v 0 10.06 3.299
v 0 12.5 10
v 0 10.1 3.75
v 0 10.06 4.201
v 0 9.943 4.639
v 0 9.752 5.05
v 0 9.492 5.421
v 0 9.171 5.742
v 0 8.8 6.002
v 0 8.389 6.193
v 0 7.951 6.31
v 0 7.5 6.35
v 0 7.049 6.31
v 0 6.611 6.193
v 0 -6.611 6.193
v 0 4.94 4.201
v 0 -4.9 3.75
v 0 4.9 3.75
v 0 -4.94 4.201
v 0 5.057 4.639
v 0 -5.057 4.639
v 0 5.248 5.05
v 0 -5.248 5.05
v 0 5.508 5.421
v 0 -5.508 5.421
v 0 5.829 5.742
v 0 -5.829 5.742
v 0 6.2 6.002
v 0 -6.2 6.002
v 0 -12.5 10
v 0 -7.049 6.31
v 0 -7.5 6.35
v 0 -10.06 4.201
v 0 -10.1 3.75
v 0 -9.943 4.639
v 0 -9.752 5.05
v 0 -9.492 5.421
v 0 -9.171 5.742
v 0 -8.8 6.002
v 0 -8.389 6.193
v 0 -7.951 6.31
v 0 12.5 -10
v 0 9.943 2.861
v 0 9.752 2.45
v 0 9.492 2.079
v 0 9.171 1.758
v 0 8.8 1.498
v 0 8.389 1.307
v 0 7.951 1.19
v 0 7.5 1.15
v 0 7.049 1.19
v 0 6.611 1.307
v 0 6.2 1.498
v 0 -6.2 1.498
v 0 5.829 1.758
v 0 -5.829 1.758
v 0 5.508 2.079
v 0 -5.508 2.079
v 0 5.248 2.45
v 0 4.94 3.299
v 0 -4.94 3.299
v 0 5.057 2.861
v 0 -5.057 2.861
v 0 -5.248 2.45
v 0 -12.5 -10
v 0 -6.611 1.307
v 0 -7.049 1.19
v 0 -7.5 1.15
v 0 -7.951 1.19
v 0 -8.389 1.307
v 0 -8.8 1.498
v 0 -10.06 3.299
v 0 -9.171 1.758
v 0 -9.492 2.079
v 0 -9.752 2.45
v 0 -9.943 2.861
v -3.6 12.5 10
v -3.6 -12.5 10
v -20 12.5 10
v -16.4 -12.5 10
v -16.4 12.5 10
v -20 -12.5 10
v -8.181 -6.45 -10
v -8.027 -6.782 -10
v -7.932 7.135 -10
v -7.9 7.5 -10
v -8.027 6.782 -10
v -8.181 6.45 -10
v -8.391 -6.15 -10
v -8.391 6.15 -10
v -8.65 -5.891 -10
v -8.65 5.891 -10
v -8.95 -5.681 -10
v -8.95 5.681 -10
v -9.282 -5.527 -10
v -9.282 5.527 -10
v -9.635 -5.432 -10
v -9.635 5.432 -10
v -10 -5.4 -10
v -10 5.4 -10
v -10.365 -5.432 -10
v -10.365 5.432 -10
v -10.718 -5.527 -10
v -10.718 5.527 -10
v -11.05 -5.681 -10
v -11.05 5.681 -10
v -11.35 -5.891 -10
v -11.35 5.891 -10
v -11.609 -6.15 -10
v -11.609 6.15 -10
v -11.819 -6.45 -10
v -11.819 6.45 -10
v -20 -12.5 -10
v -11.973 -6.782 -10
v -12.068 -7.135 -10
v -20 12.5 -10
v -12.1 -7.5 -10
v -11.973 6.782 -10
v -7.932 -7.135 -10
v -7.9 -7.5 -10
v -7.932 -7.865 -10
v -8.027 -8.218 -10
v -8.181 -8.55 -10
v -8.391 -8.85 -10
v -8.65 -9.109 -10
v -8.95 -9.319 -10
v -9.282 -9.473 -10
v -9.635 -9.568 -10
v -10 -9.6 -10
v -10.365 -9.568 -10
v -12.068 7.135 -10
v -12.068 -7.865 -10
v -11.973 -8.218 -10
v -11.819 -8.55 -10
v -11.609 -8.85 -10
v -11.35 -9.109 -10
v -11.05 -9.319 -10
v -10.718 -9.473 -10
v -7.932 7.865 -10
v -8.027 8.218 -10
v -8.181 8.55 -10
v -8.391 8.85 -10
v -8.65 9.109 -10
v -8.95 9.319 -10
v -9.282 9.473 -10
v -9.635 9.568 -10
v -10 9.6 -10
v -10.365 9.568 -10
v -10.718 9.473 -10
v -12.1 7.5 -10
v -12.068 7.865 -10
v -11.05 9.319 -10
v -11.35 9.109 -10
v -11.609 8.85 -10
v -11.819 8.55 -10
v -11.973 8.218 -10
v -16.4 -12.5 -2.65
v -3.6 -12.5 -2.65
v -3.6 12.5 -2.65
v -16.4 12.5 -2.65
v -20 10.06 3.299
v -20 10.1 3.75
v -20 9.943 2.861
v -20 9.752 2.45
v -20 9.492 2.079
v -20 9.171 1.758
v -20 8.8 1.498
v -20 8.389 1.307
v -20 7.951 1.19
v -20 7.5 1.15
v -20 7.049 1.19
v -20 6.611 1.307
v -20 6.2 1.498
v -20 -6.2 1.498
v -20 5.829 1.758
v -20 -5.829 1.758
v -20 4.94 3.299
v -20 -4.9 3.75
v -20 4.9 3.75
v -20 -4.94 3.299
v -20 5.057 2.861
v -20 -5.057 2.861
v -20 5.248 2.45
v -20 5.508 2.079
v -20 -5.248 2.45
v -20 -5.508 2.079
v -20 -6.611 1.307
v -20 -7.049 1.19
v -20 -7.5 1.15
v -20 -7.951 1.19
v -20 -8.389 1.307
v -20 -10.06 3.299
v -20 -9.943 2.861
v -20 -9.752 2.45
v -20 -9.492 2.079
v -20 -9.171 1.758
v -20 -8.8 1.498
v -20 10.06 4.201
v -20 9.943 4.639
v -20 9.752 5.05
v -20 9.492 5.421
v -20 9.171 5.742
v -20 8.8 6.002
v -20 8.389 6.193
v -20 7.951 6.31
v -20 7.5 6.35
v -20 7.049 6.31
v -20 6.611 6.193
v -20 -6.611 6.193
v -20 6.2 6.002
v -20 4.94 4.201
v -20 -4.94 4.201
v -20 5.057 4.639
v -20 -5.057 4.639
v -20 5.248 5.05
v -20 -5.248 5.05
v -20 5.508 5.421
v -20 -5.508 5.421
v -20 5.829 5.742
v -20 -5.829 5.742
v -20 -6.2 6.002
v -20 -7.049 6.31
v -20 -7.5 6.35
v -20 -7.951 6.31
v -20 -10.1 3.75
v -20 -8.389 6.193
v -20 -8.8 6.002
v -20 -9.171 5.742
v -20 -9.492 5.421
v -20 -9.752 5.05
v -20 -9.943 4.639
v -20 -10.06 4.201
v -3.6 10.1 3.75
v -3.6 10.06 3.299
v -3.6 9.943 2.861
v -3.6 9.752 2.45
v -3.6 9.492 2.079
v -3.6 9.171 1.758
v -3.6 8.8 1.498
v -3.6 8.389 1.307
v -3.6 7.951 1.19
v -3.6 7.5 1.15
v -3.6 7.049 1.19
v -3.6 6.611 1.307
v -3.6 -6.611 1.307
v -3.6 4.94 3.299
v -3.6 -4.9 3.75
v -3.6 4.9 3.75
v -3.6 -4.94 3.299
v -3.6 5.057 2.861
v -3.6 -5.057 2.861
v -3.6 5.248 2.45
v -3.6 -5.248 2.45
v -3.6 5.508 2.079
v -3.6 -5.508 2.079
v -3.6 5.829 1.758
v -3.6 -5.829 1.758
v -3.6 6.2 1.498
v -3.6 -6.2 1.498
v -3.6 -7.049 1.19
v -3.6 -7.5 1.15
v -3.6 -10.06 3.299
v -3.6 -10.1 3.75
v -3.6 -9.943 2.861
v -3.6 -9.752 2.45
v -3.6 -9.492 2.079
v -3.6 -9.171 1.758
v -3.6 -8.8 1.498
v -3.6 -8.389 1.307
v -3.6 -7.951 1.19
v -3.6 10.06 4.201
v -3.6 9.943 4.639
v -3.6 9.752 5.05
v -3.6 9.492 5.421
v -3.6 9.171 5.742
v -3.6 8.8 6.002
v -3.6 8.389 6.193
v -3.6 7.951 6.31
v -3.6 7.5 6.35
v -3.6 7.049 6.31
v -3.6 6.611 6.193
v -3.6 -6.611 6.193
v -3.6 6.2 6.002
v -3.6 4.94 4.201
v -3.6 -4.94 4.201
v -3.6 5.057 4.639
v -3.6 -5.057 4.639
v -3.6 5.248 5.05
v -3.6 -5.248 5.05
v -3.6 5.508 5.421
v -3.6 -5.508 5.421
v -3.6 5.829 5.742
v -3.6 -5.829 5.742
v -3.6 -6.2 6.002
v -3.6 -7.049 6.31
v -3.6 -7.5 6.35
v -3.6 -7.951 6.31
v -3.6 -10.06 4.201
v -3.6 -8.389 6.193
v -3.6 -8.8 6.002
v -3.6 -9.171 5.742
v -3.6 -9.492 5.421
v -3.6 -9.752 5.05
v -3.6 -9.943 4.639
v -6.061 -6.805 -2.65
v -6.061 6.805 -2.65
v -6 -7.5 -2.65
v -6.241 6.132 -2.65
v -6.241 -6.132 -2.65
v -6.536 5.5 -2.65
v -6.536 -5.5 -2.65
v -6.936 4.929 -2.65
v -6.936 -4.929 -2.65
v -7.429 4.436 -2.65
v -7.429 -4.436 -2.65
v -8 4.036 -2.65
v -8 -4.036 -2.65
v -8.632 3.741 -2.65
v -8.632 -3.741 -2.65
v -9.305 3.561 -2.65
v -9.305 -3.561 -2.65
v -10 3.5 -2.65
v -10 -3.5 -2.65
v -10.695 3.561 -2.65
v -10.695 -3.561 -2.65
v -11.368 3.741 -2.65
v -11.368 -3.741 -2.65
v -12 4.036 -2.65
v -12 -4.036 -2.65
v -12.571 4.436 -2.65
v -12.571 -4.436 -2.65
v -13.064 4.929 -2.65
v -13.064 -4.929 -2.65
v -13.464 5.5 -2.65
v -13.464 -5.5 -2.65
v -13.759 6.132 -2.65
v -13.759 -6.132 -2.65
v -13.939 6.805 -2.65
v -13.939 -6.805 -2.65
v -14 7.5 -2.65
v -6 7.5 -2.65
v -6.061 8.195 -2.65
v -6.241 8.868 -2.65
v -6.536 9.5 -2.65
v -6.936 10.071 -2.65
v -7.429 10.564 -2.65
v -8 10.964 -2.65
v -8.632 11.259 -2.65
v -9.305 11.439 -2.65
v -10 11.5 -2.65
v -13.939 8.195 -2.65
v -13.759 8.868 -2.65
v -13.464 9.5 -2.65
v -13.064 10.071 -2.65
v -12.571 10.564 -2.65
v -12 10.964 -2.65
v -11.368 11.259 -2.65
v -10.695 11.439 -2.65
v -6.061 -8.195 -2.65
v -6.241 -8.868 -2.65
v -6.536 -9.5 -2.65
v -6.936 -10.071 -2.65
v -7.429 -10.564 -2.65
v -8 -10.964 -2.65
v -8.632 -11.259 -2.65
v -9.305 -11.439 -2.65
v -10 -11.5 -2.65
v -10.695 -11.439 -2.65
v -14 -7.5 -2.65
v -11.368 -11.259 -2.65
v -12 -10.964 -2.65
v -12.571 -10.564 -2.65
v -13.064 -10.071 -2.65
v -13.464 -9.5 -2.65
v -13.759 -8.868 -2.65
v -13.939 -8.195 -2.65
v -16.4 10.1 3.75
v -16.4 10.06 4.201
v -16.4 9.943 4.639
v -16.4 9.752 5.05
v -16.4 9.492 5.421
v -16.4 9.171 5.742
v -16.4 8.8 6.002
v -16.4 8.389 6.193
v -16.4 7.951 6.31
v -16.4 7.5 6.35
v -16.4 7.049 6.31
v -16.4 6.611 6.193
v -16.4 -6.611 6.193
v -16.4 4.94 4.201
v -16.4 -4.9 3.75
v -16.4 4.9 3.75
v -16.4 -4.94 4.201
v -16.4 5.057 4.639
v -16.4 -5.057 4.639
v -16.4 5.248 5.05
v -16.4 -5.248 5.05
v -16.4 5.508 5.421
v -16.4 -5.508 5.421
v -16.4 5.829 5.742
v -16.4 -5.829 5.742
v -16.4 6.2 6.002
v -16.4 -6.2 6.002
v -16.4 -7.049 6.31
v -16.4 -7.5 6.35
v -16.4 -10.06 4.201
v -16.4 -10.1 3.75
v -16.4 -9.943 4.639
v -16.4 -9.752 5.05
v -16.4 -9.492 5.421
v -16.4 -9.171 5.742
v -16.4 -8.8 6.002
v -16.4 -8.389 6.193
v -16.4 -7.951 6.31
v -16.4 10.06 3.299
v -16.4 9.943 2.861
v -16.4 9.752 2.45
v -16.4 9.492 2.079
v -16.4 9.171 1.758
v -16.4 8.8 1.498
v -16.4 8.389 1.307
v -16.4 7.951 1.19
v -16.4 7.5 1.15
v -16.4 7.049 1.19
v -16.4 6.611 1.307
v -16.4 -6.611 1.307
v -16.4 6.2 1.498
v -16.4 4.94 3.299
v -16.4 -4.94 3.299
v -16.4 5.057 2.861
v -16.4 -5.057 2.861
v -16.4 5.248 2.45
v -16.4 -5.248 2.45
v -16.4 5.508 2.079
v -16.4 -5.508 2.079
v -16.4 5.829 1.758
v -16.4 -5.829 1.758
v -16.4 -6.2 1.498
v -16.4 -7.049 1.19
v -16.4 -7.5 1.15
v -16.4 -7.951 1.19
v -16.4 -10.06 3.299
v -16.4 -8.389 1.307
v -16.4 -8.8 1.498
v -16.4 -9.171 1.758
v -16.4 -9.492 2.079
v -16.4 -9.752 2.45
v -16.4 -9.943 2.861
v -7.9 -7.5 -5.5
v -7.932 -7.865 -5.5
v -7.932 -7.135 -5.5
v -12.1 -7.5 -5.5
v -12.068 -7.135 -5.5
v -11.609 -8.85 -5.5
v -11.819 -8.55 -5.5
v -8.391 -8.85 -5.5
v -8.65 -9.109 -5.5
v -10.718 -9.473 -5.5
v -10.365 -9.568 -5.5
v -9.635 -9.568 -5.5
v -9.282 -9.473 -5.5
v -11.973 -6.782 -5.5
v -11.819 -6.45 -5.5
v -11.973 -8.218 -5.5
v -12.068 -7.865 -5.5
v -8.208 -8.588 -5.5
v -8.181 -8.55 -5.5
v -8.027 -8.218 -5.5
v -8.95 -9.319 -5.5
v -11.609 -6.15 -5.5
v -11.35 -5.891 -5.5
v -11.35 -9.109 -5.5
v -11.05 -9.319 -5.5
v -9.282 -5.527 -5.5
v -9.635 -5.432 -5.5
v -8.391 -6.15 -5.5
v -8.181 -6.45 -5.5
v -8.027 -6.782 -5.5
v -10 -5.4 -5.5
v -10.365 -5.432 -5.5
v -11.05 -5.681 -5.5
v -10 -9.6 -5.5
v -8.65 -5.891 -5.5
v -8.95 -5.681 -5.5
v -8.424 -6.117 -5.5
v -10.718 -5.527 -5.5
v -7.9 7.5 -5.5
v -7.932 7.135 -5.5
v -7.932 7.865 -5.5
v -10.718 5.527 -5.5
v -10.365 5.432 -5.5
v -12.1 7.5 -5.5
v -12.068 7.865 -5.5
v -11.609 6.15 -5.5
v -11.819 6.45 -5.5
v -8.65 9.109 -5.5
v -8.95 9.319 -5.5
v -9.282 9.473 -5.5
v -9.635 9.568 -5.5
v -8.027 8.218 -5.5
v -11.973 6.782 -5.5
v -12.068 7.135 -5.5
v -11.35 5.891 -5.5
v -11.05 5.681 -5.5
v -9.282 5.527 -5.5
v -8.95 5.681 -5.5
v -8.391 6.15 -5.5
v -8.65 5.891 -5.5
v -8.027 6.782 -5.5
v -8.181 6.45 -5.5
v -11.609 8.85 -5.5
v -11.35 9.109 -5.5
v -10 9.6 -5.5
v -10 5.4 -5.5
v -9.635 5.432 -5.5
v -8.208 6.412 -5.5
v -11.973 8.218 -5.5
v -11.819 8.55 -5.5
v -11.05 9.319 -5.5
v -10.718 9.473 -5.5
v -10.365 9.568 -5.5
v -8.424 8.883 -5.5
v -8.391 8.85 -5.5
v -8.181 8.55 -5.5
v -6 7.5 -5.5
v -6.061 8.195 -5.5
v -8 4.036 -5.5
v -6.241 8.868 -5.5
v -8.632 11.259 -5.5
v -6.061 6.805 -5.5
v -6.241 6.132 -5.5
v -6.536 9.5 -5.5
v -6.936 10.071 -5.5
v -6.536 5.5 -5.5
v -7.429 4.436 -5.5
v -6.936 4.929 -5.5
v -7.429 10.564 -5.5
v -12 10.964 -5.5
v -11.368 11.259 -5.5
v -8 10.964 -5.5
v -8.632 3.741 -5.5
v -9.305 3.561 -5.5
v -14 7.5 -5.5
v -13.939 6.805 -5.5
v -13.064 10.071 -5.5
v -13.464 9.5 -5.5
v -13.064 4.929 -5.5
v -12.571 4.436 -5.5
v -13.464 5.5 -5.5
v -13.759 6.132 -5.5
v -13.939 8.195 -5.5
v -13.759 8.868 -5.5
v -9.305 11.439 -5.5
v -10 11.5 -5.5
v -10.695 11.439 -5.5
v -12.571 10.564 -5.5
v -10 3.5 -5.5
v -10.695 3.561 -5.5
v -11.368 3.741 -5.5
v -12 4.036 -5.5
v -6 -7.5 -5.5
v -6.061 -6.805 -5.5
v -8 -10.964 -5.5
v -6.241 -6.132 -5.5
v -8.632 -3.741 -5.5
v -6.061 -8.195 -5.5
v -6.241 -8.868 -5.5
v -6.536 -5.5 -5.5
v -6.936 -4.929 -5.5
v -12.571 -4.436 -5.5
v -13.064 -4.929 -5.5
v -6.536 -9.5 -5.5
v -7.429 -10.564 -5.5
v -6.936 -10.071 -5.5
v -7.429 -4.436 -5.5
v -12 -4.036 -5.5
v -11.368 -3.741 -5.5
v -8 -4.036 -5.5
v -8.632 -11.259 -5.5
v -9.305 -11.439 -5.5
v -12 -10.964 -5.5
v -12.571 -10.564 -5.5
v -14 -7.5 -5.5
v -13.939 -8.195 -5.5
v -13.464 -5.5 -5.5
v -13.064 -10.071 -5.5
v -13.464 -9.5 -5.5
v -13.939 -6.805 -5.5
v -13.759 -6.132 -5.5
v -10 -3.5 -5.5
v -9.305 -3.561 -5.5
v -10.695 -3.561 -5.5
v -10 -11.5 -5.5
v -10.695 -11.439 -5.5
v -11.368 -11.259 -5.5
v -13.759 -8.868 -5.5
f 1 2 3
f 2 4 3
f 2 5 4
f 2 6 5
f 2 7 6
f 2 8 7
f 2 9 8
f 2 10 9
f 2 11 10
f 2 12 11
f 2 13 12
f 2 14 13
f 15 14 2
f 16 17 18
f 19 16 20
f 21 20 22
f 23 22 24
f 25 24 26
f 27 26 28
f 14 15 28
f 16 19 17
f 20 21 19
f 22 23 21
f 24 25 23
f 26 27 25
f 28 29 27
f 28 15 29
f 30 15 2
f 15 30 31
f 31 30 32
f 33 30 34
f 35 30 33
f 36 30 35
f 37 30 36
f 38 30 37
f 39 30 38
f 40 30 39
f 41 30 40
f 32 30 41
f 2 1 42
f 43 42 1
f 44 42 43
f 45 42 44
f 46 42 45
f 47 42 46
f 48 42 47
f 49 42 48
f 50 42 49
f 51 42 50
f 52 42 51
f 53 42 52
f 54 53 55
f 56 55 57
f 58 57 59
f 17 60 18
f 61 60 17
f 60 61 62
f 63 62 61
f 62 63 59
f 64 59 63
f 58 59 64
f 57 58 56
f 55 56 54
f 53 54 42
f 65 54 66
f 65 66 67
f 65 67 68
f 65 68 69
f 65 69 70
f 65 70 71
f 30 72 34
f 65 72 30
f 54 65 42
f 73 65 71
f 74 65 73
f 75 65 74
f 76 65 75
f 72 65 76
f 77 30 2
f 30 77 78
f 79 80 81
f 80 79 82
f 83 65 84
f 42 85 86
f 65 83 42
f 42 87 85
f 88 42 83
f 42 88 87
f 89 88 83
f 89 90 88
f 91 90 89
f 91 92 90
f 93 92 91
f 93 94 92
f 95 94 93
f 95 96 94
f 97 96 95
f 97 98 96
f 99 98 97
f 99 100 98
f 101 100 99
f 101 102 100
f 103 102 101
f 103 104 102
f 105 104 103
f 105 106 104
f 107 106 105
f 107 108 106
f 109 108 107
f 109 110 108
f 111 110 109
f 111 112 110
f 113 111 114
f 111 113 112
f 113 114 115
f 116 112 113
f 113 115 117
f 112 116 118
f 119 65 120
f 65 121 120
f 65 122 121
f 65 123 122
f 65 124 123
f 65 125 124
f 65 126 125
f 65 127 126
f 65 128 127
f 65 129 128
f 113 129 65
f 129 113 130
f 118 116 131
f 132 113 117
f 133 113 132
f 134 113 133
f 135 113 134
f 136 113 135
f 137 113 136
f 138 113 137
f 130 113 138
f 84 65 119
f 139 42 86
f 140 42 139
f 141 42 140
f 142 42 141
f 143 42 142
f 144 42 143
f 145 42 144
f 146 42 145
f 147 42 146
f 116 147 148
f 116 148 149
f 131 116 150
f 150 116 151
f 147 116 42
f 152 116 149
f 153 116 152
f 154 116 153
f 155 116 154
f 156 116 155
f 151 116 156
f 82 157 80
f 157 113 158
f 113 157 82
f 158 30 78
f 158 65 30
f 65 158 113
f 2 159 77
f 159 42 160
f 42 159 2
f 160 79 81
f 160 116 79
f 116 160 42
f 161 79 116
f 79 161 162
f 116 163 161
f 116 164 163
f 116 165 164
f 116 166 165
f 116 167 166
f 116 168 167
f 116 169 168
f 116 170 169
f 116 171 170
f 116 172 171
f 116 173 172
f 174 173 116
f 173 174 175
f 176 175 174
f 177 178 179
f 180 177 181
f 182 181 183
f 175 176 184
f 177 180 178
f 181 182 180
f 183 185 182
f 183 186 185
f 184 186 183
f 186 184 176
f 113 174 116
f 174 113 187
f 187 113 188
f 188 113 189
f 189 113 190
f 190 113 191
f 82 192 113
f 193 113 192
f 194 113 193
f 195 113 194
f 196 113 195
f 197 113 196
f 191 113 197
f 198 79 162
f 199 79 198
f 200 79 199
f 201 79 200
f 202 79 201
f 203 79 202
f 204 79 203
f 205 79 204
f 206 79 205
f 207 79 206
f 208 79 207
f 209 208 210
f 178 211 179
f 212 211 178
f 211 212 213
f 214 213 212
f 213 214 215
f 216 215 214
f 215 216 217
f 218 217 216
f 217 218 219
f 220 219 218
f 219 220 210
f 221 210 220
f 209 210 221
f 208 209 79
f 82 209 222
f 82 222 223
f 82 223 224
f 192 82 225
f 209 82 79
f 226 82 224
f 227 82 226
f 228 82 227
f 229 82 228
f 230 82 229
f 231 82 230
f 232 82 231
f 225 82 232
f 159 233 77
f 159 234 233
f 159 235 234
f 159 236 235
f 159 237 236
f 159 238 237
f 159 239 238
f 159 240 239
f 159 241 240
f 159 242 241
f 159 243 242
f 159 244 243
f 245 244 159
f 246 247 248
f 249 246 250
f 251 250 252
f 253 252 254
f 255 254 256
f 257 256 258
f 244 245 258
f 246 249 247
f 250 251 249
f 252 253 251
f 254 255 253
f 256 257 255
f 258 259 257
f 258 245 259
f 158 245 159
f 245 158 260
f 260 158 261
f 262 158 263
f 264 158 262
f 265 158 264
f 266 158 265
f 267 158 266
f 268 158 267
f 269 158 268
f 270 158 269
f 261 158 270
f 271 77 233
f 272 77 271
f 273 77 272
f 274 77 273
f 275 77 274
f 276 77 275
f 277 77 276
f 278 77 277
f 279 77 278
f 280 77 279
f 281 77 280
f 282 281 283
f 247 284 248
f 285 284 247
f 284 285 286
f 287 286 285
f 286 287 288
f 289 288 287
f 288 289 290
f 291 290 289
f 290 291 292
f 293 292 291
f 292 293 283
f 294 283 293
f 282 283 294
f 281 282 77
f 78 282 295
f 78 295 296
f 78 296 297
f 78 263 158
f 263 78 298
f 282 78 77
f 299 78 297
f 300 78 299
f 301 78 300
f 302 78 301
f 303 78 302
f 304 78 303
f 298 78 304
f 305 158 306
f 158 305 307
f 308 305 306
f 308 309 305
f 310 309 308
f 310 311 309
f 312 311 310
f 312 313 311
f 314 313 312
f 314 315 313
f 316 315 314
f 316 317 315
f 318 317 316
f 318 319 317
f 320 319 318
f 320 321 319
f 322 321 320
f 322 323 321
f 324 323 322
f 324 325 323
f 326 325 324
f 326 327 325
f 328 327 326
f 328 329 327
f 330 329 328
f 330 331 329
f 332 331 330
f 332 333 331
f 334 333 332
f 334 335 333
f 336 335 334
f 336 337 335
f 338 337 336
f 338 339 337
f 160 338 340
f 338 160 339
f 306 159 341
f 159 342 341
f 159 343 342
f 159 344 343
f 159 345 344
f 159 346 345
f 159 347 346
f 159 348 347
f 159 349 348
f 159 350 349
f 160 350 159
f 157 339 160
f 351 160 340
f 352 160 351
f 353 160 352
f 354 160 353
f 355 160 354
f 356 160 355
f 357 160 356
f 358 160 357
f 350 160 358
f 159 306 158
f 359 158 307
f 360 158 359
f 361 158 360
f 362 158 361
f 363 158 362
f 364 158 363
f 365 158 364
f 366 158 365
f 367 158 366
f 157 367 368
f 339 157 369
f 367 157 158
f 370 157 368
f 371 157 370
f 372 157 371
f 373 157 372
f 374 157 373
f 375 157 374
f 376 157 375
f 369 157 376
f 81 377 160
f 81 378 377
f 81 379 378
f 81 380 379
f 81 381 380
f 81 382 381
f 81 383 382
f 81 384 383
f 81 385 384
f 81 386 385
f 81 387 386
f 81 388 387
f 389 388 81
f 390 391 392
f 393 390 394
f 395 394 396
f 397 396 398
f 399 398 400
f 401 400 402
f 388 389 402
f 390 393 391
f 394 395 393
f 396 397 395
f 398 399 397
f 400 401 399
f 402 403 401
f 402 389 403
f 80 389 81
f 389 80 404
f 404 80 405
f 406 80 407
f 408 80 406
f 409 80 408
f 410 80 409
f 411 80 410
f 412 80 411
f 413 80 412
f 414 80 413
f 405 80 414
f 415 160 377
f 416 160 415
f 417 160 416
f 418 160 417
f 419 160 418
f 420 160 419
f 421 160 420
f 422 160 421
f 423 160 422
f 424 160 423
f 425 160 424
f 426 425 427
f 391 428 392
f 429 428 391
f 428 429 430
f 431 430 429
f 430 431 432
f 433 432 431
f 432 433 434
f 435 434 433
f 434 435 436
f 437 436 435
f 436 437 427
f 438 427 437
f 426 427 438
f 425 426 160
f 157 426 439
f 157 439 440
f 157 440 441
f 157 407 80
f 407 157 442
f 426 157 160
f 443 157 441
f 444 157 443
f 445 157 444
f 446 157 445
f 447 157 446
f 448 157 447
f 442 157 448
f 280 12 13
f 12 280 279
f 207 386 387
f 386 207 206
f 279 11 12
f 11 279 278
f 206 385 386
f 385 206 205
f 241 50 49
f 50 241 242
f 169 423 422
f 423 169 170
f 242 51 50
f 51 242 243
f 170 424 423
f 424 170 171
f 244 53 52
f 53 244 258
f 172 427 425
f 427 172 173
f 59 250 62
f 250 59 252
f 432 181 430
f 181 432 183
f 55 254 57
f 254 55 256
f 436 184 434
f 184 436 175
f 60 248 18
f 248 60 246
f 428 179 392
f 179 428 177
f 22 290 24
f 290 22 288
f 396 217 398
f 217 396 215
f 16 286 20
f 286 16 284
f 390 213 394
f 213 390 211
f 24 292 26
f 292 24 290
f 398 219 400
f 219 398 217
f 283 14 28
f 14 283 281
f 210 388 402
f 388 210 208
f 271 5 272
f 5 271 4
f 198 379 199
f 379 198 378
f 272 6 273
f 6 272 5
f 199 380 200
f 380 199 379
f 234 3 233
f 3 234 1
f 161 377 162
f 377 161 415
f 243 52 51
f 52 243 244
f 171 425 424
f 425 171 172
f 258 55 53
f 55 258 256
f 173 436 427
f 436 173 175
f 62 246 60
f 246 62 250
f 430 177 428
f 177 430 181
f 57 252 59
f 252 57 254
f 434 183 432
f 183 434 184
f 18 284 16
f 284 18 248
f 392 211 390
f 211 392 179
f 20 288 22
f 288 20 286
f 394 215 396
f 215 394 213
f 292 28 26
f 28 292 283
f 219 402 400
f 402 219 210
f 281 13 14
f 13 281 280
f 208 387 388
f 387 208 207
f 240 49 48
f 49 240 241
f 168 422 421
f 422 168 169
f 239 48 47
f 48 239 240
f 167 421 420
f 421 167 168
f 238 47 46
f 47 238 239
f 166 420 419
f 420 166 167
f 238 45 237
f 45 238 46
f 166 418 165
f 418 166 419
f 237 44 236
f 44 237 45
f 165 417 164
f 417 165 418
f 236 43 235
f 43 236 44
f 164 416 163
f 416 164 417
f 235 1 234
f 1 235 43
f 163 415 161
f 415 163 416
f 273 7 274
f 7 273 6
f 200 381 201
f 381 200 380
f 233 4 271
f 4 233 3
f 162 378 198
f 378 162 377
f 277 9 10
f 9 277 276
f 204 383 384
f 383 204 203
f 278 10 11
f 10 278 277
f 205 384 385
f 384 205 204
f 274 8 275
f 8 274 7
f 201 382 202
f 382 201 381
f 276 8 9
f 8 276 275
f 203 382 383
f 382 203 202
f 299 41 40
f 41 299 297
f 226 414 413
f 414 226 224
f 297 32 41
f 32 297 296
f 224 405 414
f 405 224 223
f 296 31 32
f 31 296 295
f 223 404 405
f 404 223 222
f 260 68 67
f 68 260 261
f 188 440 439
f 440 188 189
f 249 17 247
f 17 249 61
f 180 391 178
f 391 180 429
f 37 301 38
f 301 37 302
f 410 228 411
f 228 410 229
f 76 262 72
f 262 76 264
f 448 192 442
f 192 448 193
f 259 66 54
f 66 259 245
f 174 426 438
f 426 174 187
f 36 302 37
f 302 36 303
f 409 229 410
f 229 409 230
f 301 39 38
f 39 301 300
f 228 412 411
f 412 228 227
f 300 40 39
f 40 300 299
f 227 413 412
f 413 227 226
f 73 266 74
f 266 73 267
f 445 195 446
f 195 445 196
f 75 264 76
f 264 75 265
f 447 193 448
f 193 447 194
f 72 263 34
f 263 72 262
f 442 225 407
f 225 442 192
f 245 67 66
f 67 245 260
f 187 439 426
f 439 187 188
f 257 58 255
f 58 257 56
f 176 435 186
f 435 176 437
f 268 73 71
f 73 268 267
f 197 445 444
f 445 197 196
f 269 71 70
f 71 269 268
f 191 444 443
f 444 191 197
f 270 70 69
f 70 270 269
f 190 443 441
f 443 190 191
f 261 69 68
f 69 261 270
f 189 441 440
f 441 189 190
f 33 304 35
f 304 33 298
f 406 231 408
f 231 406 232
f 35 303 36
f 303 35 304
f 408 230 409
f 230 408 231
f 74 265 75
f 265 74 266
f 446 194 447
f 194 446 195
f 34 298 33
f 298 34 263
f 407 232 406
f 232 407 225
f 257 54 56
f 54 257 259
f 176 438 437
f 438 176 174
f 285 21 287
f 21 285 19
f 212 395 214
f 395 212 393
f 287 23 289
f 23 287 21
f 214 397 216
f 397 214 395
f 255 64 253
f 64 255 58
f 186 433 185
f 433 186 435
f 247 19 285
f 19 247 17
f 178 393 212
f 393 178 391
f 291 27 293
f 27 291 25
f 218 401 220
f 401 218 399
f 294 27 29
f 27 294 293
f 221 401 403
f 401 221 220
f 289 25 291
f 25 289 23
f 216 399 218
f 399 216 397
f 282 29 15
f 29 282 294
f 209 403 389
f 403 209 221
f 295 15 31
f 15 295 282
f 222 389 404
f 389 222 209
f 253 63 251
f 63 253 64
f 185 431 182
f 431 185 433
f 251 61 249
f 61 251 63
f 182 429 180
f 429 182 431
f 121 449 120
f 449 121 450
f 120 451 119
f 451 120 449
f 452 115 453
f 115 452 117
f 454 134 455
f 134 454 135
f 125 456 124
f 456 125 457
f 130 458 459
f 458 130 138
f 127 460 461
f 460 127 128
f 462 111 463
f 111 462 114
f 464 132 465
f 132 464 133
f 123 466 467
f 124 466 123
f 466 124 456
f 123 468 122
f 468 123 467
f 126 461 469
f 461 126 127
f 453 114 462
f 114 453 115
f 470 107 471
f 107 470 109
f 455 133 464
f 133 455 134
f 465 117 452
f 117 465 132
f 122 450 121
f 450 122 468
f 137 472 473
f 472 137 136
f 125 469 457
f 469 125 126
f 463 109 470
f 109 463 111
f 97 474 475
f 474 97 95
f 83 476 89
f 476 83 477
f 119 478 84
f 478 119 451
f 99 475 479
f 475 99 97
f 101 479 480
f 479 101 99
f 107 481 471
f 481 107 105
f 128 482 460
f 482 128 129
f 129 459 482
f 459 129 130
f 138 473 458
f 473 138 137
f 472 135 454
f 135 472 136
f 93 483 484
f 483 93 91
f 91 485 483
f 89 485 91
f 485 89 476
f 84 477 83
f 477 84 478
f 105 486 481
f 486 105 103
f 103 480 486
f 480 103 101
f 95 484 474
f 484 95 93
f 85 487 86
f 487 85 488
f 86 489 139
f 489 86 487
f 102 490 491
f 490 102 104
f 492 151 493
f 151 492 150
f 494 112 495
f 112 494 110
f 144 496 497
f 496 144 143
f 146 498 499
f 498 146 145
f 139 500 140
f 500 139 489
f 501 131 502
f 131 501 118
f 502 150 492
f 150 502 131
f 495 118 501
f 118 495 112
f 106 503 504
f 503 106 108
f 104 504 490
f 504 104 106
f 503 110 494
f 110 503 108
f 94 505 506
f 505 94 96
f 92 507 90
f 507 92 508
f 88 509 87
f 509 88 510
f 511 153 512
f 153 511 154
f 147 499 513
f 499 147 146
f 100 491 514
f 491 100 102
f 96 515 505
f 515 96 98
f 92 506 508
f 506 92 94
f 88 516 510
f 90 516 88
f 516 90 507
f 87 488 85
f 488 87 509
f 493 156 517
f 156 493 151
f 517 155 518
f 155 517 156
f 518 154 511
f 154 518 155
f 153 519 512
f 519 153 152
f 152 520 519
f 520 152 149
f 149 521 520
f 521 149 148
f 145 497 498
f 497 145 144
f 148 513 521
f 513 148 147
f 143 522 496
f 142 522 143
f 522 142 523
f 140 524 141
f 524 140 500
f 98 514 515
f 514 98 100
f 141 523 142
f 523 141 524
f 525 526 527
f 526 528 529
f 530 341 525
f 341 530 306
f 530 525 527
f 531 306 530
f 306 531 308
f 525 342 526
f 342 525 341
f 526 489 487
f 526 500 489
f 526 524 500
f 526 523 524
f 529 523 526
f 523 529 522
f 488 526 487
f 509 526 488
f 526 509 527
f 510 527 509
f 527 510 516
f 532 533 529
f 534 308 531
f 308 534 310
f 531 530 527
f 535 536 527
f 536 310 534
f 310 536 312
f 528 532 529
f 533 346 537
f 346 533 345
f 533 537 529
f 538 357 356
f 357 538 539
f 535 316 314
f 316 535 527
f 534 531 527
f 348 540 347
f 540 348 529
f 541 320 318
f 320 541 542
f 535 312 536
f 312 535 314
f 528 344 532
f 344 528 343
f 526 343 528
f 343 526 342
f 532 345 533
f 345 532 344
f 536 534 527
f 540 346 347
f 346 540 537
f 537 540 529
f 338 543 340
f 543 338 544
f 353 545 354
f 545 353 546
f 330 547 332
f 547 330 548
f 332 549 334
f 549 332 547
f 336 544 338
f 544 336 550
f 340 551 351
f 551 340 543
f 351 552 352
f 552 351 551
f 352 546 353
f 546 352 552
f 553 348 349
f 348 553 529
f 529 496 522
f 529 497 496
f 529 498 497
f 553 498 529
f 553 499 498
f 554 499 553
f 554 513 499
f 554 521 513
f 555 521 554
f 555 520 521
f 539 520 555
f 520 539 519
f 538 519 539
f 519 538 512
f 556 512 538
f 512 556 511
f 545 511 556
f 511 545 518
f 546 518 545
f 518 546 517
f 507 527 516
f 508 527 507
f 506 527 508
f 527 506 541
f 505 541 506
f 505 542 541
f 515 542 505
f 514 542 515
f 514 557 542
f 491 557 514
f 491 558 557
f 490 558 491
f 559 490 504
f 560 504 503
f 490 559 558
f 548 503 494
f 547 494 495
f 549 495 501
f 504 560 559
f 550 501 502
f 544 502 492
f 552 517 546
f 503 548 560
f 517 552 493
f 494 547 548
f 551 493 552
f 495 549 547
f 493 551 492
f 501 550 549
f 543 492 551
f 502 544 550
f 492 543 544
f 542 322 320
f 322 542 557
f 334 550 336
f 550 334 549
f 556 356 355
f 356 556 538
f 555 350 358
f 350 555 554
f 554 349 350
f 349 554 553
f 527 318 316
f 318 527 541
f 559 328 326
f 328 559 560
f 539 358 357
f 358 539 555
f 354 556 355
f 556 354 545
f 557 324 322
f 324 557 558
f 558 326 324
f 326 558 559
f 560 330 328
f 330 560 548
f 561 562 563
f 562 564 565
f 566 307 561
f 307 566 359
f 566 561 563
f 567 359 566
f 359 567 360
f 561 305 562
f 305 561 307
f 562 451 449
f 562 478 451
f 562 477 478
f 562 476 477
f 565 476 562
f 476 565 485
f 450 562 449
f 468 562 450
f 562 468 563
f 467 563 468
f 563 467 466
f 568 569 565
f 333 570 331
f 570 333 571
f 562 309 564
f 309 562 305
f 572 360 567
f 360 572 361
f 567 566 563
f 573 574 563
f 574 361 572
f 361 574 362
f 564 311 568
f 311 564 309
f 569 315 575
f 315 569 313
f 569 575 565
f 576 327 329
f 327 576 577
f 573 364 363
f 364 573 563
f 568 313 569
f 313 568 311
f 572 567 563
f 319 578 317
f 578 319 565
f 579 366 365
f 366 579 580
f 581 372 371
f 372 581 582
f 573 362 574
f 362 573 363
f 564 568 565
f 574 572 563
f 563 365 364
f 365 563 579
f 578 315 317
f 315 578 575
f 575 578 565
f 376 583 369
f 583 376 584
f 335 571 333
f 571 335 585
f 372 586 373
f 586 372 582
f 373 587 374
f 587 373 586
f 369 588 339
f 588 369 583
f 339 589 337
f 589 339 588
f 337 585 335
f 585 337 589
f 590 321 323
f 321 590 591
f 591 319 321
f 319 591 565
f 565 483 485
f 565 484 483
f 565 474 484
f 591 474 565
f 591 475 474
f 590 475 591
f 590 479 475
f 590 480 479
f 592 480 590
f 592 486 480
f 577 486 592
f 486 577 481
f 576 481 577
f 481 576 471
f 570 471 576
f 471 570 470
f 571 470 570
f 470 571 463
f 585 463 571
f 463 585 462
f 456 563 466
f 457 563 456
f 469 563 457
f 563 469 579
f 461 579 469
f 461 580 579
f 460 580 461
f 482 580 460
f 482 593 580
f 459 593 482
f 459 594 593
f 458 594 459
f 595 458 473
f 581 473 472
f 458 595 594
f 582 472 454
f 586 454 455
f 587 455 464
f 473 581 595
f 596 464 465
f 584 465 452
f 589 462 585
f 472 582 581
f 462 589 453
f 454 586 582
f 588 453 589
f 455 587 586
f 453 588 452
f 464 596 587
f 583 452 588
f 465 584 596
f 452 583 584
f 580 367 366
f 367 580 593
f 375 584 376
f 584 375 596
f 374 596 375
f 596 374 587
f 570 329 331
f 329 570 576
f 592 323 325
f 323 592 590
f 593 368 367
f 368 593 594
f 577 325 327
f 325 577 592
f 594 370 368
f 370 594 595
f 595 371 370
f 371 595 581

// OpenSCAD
aluminium_height=20;
loadcell_size=12.5;
mount_depth=20;
mount_long=25;
mount_loc=15/2;
safety=0.3;
screw_head_thick=3;
screw_head_dia=8;

rotate([0,270,0])
difference() {
    linear_extrude(aluminium_height) square([mount_depth,mount_long],true);

    translate([(mount_depth-loadcell_size)/2,0,(aluminium_height-loadcell_size)/2-safety/2])
        linear_extrude(loadcell_size+safety)
            square([loadcell_size+safety,mount_depth*2+safety],true);
    
    translate([(mount_depth-loadcell_size)/2,mount_loc,-aluminium_height/2])
        linear_extrude(aluminium_height*2+safety) circle(d=5.2,$fn=36);

    translate([(mount_depth-loadcell_size)/2,-mount_loc,-aluminium_height/2])
        linear_extrude(aluminium_height*2) circle(d=5.2,$fn=36);


    translate([-mount_depth,-mount_loc,aluminium_height/2])
        rotate([0,90,0])
            linear_extrude(mount_depth*2)
                circle(d=4.2,$fn=36);

    translate([-mount_depth,mount_loc,aluminium_height/2])
        rotate([0,90,0])
            linear_extrude(mount_depth*2)
                circle(d=4.2,$fn=36);

    translate([(mount_depth-loadcell_size)-mount_depth/2-screw_head_thick,mount_loc,aluminium_height/2])
        rotate([0,90,0])
            linear_extrude(screw_head_thick)
                circle(d=screw_head_dia,$fn=36);

    translate([(mount_depth-loadcell_size)-mount_depth/2-screw_head_thick,-mount_loc,aluminium_height/2])
        rotate([0,90,0])
            linear_extrude(screw_head_thick)
                circle(d=screw_head_dia,$fn=36);
}
